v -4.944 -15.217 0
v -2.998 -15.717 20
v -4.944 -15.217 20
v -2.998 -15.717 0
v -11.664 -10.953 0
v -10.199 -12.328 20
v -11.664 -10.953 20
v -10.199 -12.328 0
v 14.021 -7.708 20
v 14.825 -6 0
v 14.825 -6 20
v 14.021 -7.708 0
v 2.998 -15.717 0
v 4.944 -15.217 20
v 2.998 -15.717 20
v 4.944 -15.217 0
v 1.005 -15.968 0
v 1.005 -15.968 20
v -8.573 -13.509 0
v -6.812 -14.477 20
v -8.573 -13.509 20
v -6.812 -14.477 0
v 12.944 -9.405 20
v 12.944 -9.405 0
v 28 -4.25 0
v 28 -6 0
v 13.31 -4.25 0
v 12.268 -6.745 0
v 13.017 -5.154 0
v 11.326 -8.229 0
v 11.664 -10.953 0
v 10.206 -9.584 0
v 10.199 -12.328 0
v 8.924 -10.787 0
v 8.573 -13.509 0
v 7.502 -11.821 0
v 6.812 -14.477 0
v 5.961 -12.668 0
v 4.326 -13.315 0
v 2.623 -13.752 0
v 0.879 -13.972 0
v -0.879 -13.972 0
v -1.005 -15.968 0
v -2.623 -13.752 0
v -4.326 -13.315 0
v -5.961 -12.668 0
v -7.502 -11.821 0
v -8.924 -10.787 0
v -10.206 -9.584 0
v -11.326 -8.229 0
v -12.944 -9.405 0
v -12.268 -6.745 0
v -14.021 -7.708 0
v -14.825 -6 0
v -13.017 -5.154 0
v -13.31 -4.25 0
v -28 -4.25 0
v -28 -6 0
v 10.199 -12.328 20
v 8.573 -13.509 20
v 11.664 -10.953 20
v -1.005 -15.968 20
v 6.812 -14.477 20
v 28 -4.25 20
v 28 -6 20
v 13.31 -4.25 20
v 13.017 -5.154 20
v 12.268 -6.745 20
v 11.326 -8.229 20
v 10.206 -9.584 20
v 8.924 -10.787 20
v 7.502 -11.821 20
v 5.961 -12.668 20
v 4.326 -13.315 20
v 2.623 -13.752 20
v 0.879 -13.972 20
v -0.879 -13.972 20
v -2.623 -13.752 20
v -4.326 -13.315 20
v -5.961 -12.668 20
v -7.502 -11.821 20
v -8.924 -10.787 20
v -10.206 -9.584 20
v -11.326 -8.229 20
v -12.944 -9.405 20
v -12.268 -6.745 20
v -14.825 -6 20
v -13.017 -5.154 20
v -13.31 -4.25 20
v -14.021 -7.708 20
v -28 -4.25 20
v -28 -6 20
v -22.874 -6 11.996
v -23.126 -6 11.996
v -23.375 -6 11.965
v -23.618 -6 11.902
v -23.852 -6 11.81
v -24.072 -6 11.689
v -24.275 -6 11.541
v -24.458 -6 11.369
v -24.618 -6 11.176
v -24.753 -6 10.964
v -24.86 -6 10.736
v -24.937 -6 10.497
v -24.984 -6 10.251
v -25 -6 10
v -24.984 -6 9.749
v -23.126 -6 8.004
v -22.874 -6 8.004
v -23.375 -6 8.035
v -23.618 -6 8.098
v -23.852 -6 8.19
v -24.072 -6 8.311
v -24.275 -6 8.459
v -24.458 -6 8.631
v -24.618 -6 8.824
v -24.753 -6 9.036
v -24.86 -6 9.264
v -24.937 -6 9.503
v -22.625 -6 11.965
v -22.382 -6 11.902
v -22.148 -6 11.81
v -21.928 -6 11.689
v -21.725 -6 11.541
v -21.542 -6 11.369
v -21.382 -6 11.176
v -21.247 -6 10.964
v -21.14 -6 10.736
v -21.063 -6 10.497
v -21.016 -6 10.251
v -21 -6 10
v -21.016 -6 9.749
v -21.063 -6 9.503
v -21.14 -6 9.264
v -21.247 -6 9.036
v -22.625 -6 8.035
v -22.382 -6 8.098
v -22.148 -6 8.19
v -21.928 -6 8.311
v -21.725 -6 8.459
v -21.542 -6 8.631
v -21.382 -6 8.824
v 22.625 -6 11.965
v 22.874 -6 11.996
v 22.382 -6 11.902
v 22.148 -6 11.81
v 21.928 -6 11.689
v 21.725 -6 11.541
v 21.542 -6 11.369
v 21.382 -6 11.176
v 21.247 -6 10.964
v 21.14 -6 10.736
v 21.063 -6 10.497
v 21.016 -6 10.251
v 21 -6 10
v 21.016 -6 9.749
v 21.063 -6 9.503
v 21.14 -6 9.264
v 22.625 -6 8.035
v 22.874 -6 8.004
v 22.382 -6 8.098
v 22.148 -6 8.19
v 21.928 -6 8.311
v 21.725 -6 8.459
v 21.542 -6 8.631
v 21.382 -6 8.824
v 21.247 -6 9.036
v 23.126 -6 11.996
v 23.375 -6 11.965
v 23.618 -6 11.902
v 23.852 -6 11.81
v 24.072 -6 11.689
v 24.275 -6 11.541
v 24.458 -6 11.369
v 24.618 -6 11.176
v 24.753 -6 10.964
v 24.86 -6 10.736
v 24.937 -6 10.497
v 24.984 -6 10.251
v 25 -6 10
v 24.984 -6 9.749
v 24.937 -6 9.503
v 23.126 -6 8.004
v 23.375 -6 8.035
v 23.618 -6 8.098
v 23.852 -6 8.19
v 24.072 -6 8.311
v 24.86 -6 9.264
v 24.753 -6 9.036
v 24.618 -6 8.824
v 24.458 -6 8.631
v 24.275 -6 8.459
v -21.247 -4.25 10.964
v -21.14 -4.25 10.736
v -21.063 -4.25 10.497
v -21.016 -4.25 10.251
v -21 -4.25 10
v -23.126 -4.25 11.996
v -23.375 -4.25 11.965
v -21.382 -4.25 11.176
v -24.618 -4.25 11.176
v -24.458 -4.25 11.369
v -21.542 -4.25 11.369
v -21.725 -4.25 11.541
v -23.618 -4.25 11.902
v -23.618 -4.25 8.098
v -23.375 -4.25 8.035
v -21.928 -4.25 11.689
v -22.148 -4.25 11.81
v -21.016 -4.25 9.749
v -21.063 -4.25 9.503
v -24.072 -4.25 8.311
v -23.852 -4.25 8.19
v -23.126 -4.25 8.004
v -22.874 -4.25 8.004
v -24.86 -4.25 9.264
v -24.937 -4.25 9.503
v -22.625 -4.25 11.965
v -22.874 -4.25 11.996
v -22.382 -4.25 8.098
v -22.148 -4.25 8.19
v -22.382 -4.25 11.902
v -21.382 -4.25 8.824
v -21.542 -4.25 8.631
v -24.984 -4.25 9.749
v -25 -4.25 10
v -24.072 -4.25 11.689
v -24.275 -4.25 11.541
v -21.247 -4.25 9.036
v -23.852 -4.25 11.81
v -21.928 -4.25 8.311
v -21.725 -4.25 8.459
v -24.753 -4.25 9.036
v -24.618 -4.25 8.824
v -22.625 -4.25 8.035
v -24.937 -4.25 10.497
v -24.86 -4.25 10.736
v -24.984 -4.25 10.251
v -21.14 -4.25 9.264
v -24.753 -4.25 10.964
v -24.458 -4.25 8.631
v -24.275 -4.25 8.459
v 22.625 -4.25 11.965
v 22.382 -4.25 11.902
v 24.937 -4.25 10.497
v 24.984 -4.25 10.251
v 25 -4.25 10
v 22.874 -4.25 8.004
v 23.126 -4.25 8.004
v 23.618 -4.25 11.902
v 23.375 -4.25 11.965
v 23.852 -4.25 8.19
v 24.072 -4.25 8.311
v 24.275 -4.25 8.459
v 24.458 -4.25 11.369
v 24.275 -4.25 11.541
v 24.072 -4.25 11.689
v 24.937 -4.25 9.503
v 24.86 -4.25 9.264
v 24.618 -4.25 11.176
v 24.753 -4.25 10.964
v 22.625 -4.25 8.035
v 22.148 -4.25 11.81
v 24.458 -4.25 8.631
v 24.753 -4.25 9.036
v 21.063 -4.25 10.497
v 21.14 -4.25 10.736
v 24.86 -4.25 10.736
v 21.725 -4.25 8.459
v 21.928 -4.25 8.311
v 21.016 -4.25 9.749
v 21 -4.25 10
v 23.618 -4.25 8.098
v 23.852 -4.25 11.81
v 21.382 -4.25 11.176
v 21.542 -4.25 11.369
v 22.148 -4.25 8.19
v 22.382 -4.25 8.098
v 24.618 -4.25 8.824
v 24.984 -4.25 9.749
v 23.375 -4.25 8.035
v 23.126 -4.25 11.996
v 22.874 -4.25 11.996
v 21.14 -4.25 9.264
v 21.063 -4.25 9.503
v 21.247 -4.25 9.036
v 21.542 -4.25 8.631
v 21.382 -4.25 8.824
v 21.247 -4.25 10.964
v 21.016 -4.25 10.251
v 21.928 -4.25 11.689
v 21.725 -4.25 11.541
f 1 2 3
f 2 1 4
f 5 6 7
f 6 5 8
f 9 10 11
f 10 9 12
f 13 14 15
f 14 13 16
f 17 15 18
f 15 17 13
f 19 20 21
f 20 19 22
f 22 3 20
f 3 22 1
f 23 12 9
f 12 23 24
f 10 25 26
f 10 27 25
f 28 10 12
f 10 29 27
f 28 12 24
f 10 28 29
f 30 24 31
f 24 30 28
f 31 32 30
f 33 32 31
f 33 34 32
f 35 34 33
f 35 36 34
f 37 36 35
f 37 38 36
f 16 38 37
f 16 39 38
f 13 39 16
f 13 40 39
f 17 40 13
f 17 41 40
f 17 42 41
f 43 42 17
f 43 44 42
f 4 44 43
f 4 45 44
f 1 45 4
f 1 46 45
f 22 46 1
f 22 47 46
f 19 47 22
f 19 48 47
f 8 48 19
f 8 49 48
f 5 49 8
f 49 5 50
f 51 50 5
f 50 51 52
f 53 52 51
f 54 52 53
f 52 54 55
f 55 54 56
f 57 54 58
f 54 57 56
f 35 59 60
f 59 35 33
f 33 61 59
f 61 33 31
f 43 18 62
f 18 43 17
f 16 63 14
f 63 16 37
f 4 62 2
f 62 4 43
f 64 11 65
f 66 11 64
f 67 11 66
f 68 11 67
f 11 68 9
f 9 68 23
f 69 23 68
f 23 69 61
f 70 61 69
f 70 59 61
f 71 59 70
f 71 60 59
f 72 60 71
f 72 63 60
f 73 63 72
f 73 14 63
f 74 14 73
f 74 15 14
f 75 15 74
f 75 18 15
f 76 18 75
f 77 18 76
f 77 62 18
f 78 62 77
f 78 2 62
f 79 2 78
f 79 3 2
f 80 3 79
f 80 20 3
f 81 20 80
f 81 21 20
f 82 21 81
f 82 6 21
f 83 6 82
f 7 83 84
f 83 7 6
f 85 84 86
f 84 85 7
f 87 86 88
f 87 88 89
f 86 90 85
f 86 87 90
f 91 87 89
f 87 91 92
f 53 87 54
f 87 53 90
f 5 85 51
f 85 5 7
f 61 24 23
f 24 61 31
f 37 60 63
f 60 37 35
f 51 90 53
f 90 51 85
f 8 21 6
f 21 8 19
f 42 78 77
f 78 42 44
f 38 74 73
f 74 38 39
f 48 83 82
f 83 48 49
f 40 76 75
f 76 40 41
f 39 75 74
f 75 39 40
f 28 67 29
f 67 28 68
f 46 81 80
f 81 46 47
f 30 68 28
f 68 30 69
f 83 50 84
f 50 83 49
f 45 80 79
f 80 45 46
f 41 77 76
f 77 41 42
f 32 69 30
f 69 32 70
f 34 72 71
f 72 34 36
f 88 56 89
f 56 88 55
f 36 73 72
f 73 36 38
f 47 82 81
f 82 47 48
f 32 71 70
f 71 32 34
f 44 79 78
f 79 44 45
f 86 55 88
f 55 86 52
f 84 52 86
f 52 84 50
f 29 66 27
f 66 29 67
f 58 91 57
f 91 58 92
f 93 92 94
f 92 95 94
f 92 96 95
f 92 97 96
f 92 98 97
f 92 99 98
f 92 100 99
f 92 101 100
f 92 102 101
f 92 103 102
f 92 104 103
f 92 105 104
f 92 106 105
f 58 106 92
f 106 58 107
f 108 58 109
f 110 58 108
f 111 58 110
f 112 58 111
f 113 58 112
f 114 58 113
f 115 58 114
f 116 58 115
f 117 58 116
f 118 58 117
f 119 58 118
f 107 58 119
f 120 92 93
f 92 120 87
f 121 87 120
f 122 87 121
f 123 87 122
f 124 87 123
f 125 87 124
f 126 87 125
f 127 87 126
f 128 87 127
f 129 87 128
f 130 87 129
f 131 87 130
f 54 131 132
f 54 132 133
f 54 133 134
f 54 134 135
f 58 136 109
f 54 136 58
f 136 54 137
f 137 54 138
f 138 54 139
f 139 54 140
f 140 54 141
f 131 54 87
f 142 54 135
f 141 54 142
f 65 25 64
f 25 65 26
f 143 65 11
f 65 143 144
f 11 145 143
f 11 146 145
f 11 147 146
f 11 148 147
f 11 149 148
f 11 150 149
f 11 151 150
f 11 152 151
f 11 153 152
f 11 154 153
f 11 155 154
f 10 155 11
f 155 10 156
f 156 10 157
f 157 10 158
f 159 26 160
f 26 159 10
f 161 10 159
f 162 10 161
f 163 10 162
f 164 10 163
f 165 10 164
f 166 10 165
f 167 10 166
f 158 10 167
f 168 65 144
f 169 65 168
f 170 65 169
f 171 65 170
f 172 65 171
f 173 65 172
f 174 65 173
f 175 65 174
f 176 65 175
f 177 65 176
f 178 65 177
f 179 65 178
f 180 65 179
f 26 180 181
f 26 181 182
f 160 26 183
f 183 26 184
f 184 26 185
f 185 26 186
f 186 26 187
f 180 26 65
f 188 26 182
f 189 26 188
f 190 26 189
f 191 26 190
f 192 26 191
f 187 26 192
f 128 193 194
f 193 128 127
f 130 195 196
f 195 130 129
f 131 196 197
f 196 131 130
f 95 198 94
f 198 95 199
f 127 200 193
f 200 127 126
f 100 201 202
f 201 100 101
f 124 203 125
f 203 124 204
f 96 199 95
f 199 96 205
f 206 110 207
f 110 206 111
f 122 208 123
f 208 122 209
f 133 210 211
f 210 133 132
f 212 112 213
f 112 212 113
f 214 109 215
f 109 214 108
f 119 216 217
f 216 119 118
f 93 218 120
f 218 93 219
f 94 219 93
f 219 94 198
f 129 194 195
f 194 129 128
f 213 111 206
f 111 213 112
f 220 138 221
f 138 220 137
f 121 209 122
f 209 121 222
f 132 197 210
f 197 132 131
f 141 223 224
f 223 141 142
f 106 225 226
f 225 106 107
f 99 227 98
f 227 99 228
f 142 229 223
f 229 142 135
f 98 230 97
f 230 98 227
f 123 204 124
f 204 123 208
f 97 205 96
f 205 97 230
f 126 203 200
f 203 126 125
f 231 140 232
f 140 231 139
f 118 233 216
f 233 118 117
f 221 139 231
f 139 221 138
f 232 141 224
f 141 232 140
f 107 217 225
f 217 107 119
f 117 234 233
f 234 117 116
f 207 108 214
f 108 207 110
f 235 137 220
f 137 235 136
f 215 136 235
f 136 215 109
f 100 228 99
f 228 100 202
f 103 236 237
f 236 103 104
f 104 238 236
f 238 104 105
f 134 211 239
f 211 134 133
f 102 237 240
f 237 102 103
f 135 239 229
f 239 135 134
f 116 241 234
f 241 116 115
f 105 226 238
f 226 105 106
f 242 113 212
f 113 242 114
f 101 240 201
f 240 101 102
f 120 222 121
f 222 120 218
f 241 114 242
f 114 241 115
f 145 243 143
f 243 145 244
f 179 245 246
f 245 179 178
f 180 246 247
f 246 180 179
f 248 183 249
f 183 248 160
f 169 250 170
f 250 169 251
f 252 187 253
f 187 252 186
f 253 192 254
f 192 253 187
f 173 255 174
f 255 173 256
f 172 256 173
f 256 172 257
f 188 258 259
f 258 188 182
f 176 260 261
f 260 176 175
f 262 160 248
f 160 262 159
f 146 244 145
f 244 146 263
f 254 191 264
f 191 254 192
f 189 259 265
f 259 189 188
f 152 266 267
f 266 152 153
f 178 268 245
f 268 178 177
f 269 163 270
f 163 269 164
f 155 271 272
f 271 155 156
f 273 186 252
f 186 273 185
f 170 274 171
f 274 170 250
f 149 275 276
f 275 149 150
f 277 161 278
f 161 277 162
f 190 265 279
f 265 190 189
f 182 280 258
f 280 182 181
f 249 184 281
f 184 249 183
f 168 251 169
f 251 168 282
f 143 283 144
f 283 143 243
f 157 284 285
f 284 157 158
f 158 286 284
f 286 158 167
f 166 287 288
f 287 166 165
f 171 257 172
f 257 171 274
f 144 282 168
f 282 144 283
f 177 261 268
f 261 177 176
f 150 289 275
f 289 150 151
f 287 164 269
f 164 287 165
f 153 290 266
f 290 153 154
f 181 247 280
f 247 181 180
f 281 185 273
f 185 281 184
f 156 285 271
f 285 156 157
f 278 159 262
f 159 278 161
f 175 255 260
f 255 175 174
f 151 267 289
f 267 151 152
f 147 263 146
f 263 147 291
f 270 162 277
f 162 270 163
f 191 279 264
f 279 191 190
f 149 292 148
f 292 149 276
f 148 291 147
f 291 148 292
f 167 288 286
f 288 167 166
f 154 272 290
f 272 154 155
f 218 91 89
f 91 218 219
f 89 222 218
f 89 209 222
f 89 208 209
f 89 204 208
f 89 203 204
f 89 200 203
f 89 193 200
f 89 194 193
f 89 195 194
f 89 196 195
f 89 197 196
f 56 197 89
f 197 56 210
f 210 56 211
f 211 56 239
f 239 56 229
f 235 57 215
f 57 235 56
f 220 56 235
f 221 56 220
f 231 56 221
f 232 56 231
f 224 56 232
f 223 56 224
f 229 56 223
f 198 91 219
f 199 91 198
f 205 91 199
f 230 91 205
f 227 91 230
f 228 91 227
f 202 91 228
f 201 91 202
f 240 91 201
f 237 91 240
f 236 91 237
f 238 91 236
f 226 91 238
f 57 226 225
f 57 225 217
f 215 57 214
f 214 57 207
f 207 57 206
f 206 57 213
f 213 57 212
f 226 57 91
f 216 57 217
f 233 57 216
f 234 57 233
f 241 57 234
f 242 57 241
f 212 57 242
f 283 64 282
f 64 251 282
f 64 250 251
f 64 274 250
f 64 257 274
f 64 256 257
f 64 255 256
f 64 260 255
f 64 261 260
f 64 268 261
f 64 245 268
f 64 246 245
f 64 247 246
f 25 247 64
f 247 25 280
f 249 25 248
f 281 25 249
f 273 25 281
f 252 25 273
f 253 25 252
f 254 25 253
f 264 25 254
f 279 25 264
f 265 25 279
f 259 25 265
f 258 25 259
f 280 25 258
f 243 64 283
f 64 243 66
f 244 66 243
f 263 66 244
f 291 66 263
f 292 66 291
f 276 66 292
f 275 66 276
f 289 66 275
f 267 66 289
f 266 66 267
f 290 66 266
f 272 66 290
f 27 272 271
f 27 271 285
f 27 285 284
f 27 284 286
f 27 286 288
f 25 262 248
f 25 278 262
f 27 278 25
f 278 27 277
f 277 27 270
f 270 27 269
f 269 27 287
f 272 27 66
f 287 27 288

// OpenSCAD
// 32 10 2

$fn=50;

module bracket(ht, id, button_diam, button_ht, offset) {
  thickness=4;
  difference() {
    union() {
      difference() {
        cylinder(ht, d=id+4);
        cylinder(ht, d=id);
      }
      // tail
      hang=14;
      for (qq=[-1,1]) {
        translate([qq*(id/2+hang/2),0,0])
          translate([-hang/2,-thickness/2+offset,0]) cube([hang,thickness,ht]);
      }
    }
    // slice
    slice_wid = 100;
    slice_thickness=.5;
    #translate([-slice_wid/2,-slice_thickness/2+offset,0]) cube([slice_wid,slice_thickness,ht]);
    
    // tail holes
    for (qq=[-1,1]) {
      translate([qq*23,33,ht/2]) rotate([90,0,0]) cylinder(100,d=4);
    }
    
    // stud hole
    //translate([0,0,ht/2]) rotate([90,0,0]) cylinder((id+thickness)/2,d=button_diam);
  }
}

module halfbracket(ht, id, button_diam, button_ht, offset) {
  difference() {
    bracket(ht, id, button_diam, button_ht, offset);
    translate([-id,offset,0]) cube([id*2,id*2,ht]);
  }
}

halfbracket(20,28,10,2,-4);
